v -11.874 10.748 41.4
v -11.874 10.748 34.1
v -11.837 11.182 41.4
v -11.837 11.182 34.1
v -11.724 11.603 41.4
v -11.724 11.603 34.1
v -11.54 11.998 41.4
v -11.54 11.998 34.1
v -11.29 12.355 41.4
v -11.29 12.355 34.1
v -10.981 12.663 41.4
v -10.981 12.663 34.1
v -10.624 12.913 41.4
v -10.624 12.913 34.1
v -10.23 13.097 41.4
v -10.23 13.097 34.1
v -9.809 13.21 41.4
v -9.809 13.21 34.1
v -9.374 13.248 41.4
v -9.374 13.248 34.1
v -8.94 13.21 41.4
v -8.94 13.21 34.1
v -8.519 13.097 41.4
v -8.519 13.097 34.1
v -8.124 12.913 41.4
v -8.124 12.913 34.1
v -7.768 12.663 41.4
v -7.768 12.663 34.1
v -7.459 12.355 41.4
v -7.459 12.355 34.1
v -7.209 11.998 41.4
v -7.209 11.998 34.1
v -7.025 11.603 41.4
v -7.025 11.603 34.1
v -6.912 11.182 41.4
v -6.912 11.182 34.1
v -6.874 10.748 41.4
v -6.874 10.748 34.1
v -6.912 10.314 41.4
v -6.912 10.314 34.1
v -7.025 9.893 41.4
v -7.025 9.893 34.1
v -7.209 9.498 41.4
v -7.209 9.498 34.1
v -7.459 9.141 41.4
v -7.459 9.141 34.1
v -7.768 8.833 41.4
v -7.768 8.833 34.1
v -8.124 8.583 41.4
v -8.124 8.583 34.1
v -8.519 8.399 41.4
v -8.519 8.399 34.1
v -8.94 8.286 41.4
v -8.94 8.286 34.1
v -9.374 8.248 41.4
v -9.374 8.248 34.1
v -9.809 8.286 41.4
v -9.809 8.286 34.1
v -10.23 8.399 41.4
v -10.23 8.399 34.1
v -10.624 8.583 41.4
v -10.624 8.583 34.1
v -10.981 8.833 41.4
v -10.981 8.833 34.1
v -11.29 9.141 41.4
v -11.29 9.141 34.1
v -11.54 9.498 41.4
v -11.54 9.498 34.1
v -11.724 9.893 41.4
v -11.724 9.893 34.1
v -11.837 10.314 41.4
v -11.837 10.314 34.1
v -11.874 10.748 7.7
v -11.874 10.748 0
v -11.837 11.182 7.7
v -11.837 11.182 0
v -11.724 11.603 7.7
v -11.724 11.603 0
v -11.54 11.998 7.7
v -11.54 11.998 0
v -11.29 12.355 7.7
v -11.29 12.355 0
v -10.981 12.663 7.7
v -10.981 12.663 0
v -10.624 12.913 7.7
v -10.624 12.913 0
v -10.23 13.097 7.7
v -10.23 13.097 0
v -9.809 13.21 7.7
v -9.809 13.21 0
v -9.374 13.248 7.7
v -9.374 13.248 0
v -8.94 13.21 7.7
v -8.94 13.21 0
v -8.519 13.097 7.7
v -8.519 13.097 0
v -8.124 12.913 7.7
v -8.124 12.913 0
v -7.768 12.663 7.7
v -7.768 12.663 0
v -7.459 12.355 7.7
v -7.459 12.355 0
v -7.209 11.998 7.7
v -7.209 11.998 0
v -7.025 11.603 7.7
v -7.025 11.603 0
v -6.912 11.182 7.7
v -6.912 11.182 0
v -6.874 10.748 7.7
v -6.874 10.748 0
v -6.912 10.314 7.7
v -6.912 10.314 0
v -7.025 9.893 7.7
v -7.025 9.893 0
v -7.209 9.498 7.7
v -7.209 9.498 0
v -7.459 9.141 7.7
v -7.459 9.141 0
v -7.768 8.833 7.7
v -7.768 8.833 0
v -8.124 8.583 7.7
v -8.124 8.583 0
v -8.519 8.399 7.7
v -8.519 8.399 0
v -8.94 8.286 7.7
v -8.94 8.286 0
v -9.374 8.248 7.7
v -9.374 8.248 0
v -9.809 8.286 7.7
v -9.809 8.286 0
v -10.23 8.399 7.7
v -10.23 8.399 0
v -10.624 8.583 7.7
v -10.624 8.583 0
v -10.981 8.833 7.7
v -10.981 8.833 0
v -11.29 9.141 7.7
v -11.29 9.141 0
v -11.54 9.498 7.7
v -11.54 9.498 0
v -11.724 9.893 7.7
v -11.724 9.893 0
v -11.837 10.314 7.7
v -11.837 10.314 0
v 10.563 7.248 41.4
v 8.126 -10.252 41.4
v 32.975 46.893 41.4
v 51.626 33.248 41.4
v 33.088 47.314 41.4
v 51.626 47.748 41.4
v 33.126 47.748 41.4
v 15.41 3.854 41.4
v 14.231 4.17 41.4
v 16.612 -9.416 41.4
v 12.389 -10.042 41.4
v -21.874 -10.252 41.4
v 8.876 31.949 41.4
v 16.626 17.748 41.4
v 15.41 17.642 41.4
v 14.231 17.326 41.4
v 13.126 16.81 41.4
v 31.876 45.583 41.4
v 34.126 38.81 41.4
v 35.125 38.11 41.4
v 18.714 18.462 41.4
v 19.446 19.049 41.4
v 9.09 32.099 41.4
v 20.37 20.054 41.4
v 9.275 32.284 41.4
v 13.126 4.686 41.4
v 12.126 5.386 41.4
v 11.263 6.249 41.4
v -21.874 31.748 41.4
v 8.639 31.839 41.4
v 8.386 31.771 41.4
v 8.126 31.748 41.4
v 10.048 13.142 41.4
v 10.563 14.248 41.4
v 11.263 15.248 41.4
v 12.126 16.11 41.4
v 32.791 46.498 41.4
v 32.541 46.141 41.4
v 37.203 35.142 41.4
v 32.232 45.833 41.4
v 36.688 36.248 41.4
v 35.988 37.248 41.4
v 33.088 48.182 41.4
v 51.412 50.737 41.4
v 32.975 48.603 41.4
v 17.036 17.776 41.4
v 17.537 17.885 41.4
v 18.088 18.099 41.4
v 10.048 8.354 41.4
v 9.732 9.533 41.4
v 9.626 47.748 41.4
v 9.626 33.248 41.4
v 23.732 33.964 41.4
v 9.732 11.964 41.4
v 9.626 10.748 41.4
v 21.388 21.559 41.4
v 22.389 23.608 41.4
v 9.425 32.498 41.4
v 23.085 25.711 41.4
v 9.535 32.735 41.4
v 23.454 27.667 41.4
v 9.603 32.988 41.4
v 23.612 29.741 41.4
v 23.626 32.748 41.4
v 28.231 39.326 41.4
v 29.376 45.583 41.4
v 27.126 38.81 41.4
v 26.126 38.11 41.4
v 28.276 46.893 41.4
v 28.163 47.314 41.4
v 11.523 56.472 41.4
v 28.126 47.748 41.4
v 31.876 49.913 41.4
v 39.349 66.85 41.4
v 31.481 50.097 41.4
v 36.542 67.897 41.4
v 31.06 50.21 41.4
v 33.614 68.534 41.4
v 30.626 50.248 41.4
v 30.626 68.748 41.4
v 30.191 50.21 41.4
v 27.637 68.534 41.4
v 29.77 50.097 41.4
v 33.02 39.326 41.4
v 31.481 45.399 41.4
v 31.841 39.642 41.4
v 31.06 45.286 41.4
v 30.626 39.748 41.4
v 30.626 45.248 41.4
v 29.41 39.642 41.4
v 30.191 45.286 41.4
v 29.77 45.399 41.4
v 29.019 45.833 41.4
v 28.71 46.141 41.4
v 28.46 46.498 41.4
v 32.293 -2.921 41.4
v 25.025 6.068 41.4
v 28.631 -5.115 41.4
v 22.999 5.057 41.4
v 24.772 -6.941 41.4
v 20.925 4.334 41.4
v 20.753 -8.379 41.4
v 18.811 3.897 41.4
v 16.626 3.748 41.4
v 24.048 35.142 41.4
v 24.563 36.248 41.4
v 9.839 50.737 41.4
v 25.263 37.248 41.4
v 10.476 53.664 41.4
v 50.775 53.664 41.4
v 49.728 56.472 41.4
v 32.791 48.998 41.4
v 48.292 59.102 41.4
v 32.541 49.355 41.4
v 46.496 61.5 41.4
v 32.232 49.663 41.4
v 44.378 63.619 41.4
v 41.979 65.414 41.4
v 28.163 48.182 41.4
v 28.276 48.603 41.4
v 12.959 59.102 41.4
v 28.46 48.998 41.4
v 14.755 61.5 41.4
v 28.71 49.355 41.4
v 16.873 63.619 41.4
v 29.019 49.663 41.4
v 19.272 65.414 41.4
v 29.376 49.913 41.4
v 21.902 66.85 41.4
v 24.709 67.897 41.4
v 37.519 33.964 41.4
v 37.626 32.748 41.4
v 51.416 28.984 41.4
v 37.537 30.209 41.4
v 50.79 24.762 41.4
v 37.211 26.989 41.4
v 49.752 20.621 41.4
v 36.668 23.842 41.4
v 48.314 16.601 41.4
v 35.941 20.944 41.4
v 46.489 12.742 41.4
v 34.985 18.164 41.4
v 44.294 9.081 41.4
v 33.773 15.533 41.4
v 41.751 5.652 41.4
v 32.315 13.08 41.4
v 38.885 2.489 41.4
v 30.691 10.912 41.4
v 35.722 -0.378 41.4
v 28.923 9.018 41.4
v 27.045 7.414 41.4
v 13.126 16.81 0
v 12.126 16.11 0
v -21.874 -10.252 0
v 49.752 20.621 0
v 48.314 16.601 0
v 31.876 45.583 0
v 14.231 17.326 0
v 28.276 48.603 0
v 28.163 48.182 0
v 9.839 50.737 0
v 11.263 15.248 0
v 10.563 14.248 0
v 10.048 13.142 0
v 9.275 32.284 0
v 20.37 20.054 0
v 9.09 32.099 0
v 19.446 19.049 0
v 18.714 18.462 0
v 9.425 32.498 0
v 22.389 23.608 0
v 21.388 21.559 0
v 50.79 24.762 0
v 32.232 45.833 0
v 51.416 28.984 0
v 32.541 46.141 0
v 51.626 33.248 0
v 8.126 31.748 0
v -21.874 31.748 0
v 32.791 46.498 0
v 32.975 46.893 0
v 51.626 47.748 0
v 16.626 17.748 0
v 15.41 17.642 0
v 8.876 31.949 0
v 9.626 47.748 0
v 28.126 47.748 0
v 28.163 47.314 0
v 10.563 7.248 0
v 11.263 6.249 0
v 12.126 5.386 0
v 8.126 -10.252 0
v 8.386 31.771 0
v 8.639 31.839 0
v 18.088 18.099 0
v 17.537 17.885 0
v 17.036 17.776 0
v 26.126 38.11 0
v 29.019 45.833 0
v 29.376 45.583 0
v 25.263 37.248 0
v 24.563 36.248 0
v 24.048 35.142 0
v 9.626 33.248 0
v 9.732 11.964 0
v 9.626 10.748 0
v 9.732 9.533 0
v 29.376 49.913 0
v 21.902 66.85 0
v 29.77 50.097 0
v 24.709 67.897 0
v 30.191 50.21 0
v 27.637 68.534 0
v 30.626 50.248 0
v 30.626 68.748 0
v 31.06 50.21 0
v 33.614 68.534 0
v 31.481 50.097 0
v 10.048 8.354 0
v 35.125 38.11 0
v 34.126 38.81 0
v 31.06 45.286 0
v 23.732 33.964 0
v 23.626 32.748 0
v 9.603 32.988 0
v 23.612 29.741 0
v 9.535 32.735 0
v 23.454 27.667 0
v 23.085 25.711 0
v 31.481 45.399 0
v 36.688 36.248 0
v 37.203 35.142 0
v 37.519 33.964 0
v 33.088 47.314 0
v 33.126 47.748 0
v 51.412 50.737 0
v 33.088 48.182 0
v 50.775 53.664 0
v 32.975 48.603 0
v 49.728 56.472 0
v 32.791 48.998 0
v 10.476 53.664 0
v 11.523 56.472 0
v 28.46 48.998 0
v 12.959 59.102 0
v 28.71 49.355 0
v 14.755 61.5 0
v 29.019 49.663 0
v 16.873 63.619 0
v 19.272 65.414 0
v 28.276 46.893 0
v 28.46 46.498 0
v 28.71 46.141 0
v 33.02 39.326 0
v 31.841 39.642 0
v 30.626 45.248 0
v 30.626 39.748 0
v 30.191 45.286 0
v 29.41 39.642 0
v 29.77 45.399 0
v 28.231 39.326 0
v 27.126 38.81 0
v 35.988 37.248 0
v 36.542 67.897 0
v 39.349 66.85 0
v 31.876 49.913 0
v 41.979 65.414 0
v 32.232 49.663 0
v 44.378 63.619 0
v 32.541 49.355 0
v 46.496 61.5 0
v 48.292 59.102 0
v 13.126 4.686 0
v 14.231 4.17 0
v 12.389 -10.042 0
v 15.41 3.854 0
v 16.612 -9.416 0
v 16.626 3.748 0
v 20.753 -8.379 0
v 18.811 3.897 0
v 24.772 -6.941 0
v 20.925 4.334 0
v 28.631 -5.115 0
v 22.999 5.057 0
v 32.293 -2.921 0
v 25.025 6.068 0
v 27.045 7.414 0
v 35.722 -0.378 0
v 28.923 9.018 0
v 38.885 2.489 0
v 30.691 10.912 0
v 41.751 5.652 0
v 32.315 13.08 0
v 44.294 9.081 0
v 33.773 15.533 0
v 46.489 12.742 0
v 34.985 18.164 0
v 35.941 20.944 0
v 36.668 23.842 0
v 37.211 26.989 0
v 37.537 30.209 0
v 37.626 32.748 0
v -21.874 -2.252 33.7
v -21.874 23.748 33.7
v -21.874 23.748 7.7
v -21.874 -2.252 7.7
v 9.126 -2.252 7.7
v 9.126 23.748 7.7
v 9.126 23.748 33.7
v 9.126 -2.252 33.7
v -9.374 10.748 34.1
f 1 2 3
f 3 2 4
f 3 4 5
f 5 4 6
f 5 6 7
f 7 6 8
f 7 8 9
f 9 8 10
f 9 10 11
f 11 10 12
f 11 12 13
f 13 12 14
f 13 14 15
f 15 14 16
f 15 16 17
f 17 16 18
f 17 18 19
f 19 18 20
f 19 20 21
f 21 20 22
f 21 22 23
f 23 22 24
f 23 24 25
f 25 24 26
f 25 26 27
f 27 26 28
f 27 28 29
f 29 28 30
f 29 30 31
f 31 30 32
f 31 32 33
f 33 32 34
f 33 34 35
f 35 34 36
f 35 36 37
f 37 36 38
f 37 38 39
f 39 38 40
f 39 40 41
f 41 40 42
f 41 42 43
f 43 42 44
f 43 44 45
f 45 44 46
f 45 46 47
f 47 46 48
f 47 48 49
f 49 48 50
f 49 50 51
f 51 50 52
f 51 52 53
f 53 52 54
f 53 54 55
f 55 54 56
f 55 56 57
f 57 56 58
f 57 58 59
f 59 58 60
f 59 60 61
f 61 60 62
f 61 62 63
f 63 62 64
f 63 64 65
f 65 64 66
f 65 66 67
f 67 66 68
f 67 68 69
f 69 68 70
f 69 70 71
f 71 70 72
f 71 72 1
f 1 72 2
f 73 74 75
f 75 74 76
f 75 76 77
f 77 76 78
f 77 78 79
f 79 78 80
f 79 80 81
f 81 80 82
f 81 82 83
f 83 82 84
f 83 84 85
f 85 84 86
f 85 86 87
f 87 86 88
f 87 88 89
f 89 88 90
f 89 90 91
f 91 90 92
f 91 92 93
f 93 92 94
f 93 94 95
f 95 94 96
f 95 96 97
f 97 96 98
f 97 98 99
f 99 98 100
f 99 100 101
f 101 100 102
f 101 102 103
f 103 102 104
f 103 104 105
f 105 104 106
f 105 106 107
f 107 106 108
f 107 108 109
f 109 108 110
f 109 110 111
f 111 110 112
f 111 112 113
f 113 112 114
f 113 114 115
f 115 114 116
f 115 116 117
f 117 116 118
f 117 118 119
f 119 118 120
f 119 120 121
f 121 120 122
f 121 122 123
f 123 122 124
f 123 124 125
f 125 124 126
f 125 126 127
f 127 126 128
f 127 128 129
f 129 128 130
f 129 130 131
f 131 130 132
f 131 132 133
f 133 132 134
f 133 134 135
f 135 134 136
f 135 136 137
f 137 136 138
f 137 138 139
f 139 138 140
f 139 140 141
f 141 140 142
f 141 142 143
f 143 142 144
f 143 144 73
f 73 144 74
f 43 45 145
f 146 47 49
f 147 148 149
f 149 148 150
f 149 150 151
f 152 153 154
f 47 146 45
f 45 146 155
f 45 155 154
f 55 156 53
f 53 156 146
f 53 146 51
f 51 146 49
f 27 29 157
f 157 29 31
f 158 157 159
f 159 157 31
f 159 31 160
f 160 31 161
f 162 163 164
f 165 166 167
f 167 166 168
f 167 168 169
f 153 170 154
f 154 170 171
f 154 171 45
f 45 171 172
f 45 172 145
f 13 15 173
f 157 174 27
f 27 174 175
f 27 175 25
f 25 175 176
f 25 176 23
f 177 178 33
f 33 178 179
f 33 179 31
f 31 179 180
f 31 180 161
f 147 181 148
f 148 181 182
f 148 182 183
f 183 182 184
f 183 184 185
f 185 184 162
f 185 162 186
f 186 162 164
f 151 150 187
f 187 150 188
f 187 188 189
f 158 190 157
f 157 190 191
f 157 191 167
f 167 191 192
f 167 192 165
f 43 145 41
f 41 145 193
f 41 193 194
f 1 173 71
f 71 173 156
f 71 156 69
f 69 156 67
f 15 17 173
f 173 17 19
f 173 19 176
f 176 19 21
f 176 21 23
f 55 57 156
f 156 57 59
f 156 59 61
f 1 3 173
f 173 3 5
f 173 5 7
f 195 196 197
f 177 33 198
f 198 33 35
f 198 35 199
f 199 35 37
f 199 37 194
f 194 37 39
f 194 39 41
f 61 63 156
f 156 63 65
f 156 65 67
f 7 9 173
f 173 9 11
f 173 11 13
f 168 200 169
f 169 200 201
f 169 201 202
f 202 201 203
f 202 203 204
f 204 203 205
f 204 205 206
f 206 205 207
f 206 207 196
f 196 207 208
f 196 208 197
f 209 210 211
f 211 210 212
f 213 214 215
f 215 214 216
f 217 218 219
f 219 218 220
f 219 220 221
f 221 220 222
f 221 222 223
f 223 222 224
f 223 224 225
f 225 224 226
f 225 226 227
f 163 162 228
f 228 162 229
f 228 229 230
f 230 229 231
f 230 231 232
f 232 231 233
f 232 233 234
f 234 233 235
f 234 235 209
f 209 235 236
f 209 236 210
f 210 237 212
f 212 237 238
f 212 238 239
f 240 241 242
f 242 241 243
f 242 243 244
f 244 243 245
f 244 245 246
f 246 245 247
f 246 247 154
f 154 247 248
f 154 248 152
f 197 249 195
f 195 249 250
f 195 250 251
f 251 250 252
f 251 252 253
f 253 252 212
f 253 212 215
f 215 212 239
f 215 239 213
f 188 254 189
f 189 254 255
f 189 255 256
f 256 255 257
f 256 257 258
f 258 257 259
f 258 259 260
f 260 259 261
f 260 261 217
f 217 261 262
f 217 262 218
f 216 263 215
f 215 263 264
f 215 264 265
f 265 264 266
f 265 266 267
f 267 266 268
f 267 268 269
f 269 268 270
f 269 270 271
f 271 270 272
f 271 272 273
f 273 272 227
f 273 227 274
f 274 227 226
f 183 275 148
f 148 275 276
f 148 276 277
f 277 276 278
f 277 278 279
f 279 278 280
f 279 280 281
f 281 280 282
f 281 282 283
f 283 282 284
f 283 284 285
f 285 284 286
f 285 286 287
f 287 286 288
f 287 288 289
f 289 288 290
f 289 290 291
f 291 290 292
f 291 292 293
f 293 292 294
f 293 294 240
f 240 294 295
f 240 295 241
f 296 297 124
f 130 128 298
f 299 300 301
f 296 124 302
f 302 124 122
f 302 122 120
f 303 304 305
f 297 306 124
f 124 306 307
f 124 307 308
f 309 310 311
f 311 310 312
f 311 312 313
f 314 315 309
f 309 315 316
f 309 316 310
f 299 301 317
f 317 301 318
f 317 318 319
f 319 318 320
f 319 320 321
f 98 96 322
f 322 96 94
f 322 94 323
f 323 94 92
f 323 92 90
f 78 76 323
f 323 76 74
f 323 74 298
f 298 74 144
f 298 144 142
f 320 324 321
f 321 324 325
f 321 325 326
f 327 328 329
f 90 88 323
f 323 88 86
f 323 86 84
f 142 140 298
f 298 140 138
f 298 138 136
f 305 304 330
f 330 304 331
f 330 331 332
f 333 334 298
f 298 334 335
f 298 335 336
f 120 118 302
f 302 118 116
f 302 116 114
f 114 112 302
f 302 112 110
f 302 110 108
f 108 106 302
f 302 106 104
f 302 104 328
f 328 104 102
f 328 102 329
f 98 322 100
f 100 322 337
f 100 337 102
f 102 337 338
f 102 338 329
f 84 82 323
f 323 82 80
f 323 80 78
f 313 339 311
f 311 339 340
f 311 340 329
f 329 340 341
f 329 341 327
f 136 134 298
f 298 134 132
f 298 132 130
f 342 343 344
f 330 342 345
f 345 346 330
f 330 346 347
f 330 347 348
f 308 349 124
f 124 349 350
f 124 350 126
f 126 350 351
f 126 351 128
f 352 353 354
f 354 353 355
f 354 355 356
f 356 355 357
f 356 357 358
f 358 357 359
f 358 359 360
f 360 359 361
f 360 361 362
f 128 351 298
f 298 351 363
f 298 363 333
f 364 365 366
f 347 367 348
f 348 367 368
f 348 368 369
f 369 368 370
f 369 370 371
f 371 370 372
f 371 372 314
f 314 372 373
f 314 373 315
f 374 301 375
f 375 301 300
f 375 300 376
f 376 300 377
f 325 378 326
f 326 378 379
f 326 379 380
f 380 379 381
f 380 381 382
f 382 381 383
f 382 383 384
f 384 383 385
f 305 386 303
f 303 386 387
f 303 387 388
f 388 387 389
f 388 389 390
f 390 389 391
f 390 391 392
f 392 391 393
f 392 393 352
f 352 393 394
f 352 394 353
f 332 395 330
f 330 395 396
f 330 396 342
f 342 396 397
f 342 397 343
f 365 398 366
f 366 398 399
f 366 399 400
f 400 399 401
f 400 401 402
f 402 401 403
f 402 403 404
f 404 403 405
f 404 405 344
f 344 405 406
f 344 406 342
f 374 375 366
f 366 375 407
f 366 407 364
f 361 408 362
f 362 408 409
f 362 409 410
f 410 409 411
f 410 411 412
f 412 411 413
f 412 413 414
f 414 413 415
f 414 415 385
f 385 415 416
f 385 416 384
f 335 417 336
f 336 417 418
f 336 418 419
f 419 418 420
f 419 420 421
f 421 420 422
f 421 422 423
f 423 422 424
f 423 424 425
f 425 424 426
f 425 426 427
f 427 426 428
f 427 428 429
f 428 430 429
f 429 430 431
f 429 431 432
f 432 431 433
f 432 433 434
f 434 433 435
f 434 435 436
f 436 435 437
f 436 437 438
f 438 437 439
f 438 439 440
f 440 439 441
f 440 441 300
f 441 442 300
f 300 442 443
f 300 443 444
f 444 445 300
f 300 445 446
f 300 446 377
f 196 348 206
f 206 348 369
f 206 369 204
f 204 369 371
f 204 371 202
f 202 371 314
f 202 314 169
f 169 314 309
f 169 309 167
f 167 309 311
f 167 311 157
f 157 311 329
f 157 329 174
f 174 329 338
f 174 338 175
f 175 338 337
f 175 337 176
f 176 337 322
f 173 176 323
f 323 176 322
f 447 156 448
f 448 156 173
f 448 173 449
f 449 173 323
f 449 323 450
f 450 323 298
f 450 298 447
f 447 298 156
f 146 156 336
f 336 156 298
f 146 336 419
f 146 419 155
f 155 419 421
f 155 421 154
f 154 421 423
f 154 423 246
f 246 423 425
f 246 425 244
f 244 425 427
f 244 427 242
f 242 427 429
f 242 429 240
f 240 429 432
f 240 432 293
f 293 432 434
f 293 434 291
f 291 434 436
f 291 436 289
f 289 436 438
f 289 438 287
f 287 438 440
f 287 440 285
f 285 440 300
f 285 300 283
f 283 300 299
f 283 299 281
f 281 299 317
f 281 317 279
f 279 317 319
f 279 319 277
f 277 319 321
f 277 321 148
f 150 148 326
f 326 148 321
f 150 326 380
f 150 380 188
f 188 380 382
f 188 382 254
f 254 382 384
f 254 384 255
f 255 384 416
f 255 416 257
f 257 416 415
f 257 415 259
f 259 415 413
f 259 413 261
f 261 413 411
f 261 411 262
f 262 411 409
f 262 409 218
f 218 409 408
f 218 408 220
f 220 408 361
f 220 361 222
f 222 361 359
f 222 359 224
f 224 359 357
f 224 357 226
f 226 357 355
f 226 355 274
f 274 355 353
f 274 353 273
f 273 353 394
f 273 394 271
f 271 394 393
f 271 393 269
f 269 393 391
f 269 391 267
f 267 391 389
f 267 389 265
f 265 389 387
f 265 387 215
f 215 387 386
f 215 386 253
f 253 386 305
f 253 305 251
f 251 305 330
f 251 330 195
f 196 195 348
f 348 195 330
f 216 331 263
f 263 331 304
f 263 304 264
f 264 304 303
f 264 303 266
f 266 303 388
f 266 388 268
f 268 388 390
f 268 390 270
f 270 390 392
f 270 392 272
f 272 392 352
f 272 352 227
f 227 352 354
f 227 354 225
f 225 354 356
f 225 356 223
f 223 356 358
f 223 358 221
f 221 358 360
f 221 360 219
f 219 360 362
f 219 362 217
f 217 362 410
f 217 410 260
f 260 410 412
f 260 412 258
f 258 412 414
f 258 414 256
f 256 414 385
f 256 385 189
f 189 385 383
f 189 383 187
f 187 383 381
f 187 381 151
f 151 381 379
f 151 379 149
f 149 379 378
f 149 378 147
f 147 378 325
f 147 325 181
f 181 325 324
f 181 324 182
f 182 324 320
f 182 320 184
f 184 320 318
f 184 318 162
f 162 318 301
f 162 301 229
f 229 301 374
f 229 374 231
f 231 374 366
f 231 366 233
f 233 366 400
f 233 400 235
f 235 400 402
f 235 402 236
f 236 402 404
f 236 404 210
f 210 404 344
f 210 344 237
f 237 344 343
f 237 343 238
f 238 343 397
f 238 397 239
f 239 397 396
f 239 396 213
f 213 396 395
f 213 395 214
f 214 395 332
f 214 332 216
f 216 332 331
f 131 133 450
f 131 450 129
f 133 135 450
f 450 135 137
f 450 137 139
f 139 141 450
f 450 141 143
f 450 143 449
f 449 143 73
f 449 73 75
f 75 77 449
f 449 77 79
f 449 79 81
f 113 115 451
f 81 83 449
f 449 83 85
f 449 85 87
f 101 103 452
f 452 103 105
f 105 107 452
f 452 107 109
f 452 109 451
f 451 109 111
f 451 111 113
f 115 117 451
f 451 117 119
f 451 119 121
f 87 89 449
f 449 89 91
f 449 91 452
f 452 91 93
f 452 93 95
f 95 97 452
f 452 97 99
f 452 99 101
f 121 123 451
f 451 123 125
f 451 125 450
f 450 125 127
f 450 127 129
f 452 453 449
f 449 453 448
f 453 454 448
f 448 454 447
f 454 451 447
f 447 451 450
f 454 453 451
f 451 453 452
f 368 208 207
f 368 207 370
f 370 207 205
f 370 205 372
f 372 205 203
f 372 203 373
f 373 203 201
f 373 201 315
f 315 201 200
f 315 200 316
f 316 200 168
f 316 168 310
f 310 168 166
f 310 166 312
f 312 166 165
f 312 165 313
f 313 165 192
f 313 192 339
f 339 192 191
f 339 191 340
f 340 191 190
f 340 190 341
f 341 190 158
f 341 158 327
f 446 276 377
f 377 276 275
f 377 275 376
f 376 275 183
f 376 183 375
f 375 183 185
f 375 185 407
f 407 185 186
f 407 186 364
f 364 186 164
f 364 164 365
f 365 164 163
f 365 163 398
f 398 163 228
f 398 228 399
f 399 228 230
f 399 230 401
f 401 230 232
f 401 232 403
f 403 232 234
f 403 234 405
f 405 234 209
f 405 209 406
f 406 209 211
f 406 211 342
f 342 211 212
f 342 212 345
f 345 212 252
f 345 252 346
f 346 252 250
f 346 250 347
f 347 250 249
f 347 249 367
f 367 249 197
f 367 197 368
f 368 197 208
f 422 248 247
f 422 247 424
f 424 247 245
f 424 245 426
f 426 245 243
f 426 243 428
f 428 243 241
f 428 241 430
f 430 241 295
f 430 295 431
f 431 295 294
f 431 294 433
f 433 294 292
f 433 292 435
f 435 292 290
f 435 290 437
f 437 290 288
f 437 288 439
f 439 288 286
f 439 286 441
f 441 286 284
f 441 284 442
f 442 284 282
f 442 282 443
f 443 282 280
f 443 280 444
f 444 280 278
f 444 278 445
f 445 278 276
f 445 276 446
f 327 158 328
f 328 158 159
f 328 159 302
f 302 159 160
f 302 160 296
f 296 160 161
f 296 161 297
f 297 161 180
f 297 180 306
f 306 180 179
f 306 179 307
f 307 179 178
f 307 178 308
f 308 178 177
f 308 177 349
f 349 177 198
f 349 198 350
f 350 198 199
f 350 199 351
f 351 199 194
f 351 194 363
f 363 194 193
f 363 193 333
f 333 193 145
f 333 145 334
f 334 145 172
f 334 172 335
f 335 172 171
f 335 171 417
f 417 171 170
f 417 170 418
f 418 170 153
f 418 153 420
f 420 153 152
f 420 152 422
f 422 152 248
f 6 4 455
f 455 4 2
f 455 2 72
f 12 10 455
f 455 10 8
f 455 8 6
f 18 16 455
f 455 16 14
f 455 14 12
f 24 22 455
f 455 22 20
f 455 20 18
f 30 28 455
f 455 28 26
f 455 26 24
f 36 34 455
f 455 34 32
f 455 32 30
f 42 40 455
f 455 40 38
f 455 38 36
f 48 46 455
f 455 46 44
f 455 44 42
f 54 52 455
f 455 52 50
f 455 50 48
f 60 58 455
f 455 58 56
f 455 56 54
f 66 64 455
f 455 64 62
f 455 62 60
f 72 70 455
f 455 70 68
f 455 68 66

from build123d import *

# Parameters (mm, degrees)
SKETCH1_R           = 2.5
BOSS_EXTRUDE1_DEPTH = 41.4
SKETCH2_W           = 26
SKETCH2_H           = 26
CUT_EXTRUDE1_DEPTH  = 31
CUT_EXTRUDE4_DEPTH  = 41.4
SKETCH4_R           = 2.5
BOSS_EXTRUDE2_DEPTH = 0.4


with BuildPart() as part:
    # Sketch1 → Boss-Extrude1 (new body)
    with BuildSketch(Plane.XY):
        with BuildLine():
            Line((8.125515238, 31.748109782), (-21.874484762, 31.748109782))
            Line((-21.874484762, 31.748109782), (-21.874484762, -10.251890218))
            Line((-21.874484762, -10.251890218), (8.125515238, -10.251890218))
            ThreePointArc((8.125515238, -10.251890218), (38.88466022, 2.488964801), (51.625515238, 33.248109782))
            Line((51.625515238, 33.248109782), (51.625515238, 47.748109782))
            ThreePointArc((51.625515238, 47.748109782), (30.625515238, 68.748109782), (9.625515238, 47.748109782))
            Line((9.625515238, 47.748109782), (9.625515238, 33.248109782))
            ThreePointArc((9.625515238, 33.248109782), (9.18617541, 32.18744961), (8.125515238, 31.748109782))
        make_face()
        with Locations((-9.374484762, 10.748109782)):
            Circle(SKETCH1_R, mode=Mode.SUBTRACT)
        with Locations((30.625515238, 47.748109782)):
            Circle(SKETCH1_R, mode=Mode.SUBTRACT)
    extrude(amount=BOSS_EXTRUDE1_DEPTH)

    # Sketch2 → Cut-Extrude1 (cut)
    with BuildSketch(Plane.ZY.offset(21.874484762)):
        with Locations((20.7, 10.748109782)):
            Rectangle(SKETCH2_W, SKETCH2_H)
    extrude(amount=-CUT_EXTRUDE1_DEPTH, mode=Mode.SUBTRACT)

    # Sketch3 → Cut-Extrude4 (cut)
    with BuildSketch(Plane.XY.offset(41.4)):
        with BuildLine():
            ThreePointArc((23.625515238, 32.748109782), (30.625515238, 39.748109782), (37.625515238, 32.748109782))
            add(Edge.make_bspline(
                [(16.625515238, 3.748109782), (24.940509595, 3.748109782), (36.171087452, 14.120308293), (37.625515238, 29.35283955), (37.625515238, 32.748109782)],
                knots=[0, 0, 0, 0, 0.619735212, 1, 1, 1, 1], degree=3))
            ThreePointArc((16.625515238, 3.748109782), (9.625515238, 10.748109782), (16.625515238, 17.748109782))
            add(Edge.make_bspline(
                [(16.625515238, 17.748109782), (19.461751307, 17.748109782), (23.882566791, 24.826419712), (23.625515238, 30.398814735), (23.625515238, 32.748109782)],
                knots=[0, 0, 0, 0, 0.571663187, 1, 1, 1, 1], degree=3))
        make_face()
    extrude(amount=-CUT_EXTRUDE4_DEPTH, mode=Mode.SUBTRACT)

    # Sketch4 → Boss-Extrude2 (add)
    with BuildSketch(Plane(origin=(0, 0, 33.7), x_dir=(-1, 0, 0), z_dir=(0, 0, -1))):
        with Locations((9.374484762, 10.748109782)):
            Circle(SKETCH4_R)
    extrude(amount=-BOSS_EXTRUDE2_DEPTH)


solid = part.part
